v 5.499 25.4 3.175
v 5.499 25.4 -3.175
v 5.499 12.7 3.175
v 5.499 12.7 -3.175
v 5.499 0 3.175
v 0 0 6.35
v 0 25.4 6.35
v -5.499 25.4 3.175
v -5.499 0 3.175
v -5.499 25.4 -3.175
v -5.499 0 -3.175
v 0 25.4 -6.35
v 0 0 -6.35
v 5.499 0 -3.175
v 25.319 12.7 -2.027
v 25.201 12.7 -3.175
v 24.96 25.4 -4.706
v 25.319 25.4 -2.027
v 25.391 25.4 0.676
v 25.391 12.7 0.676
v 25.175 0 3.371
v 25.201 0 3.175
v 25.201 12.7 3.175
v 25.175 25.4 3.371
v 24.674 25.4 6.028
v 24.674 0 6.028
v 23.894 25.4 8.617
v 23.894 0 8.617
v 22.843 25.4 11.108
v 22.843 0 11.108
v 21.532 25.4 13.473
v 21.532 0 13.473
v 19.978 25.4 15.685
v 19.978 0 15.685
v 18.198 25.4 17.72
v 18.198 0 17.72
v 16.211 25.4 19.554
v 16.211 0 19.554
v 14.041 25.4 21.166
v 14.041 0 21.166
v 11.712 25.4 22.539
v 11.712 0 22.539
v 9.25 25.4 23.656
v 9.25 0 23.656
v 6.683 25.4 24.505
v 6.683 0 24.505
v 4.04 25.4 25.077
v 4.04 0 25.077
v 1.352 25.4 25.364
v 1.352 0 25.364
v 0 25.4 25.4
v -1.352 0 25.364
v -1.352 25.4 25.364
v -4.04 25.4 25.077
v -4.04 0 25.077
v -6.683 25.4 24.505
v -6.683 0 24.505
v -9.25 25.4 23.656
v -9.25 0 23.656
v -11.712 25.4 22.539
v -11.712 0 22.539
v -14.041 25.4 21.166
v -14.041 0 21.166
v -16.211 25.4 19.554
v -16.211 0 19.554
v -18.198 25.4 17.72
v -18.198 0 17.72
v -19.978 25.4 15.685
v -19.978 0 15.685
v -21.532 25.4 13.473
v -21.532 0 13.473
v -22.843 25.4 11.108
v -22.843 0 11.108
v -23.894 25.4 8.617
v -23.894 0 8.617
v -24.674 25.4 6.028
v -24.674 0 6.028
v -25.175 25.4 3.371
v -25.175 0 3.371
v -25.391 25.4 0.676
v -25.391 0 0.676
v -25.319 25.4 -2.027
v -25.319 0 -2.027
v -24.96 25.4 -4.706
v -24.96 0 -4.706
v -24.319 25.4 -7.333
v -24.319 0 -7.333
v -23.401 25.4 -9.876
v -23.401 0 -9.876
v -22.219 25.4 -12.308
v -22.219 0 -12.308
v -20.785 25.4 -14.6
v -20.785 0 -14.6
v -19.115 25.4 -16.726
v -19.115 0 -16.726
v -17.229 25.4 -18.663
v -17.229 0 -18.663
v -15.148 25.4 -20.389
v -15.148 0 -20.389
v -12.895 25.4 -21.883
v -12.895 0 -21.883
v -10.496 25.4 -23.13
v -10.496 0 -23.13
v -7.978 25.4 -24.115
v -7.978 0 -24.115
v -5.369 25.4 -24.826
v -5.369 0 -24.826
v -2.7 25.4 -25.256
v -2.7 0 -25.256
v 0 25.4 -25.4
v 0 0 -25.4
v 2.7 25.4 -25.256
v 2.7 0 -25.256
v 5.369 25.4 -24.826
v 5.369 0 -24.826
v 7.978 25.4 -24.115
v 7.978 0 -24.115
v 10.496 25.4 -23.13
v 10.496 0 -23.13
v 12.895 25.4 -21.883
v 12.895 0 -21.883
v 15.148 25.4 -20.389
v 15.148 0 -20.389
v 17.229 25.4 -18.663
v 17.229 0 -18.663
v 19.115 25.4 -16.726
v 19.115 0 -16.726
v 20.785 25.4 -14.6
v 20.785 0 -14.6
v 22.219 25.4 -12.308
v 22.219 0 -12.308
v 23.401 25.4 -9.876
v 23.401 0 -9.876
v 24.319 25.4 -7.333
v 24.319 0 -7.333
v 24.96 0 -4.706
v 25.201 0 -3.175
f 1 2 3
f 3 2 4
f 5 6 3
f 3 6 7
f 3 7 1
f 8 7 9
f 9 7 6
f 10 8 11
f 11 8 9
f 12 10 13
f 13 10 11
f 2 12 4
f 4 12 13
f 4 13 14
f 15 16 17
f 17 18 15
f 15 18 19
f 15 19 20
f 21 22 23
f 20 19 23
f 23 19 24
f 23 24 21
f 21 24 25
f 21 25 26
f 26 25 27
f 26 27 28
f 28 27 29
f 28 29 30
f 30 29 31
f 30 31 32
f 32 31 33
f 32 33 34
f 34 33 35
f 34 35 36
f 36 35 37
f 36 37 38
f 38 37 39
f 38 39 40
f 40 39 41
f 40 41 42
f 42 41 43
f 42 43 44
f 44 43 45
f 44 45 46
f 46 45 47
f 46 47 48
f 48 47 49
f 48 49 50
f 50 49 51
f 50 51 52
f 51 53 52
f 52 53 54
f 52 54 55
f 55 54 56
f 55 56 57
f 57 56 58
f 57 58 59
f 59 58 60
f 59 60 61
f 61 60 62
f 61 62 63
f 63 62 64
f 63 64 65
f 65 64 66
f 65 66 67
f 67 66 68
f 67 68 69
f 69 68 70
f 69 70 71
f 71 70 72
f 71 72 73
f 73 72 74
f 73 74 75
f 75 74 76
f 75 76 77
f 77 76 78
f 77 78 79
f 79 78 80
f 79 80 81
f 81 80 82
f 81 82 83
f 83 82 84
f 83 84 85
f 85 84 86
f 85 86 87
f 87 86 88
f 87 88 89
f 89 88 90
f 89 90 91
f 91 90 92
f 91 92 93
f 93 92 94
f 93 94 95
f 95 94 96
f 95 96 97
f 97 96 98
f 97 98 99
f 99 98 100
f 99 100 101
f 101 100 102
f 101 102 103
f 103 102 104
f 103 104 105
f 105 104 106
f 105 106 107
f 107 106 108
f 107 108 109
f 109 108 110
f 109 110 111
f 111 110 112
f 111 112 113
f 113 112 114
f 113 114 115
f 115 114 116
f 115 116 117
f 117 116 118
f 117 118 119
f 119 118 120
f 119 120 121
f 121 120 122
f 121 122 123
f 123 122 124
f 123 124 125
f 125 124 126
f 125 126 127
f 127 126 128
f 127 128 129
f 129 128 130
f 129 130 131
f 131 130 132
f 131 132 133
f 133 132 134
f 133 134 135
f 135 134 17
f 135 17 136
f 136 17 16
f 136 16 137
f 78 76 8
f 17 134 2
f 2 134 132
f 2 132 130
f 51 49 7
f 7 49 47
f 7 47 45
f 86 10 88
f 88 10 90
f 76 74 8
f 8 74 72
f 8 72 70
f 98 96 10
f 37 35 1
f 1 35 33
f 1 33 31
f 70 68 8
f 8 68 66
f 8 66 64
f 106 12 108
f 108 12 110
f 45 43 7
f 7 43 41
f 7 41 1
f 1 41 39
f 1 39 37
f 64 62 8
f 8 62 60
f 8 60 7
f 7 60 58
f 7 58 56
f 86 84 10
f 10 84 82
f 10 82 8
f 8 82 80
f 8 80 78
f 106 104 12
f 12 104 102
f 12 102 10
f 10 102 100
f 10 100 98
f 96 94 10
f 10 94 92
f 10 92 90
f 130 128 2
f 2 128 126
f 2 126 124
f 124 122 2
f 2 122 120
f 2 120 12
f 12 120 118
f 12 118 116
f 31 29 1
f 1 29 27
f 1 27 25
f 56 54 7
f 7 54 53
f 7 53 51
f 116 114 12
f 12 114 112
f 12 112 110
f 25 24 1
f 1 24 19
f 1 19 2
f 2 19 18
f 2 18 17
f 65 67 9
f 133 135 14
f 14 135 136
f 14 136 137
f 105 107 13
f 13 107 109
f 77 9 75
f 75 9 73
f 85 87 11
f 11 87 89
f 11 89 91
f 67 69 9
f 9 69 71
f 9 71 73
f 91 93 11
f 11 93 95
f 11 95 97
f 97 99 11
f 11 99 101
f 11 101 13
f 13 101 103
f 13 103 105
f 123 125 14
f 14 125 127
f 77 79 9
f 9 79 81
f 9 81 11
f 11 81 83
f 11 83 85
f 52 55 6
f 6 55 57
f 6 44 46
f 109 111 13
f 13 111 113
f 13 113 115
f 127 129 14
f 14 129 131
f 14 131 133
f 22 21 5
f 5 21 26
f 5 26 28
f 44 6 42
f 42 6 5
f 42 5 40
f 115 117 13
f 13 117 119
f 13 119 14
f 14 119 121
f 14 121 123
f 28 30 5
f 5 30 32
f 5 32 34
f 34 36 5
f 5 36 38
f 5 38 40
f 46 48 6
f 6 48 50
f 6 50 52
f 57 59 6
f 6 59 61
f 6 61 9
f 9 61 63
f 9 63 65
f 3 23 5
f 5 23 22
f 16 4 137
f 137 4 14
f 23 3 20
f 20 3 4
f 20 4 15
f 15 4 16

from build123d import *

# Parameters (mm, degrees)
SKETCH1_R           = 25.4
BOSS_EXTRUDE1_DEPTH = 25.4
CUT_EXTRUDE1_DEPTH  = 12.7


with BuildPart() as part:
    # Sketch1 → Boss-Extrude1 (new body)
    with BuildSketch(Plane(origin=(0, 0, 0), x_dir=(1, 0, 0), z_dir=(0, 1, 0))):
        Circle(SKETCH1_R)
        Polygon((0, 6.35), (5.499261314, 3.175), (5.499261314, -3.175), (0, -6.35), (-5.499261314, -3.175), (-5.499261314, 3.175), align=None, mode=Mode.SUBTRACT)
    extrude(amount=BOSS_EXTRUDE1_DEPTH)

    # Sketch1<4> → Cut-Extrude1 (cut)
    with BuildSketch(Plane(origin=(0, 0, 0), x_dir=(1, 0, 0), z_dir=(0, 1, 0))):
        with BuildLine():
            Line((25.200781238, 3.175), (5.499261314, 3.175))
            Line((5.499261314, 3.175), (5.499261314, -3.175))
            Line((5.499261314, -3.175), (25.200781238, -3.175))
            ThreePointArc((25.200781238, -3.175), (25.350146385, -1.590621979), (25.4, 0))
            ThreePointArc((25.4, 0), (25.350146385, 1.590621979), (25.200781238, 3.175))
        make_face()
    extrude(amount=CUT_EXTRUDE1_DEPTH, mode=Mode.SUBTRACT)


solid = part.part
